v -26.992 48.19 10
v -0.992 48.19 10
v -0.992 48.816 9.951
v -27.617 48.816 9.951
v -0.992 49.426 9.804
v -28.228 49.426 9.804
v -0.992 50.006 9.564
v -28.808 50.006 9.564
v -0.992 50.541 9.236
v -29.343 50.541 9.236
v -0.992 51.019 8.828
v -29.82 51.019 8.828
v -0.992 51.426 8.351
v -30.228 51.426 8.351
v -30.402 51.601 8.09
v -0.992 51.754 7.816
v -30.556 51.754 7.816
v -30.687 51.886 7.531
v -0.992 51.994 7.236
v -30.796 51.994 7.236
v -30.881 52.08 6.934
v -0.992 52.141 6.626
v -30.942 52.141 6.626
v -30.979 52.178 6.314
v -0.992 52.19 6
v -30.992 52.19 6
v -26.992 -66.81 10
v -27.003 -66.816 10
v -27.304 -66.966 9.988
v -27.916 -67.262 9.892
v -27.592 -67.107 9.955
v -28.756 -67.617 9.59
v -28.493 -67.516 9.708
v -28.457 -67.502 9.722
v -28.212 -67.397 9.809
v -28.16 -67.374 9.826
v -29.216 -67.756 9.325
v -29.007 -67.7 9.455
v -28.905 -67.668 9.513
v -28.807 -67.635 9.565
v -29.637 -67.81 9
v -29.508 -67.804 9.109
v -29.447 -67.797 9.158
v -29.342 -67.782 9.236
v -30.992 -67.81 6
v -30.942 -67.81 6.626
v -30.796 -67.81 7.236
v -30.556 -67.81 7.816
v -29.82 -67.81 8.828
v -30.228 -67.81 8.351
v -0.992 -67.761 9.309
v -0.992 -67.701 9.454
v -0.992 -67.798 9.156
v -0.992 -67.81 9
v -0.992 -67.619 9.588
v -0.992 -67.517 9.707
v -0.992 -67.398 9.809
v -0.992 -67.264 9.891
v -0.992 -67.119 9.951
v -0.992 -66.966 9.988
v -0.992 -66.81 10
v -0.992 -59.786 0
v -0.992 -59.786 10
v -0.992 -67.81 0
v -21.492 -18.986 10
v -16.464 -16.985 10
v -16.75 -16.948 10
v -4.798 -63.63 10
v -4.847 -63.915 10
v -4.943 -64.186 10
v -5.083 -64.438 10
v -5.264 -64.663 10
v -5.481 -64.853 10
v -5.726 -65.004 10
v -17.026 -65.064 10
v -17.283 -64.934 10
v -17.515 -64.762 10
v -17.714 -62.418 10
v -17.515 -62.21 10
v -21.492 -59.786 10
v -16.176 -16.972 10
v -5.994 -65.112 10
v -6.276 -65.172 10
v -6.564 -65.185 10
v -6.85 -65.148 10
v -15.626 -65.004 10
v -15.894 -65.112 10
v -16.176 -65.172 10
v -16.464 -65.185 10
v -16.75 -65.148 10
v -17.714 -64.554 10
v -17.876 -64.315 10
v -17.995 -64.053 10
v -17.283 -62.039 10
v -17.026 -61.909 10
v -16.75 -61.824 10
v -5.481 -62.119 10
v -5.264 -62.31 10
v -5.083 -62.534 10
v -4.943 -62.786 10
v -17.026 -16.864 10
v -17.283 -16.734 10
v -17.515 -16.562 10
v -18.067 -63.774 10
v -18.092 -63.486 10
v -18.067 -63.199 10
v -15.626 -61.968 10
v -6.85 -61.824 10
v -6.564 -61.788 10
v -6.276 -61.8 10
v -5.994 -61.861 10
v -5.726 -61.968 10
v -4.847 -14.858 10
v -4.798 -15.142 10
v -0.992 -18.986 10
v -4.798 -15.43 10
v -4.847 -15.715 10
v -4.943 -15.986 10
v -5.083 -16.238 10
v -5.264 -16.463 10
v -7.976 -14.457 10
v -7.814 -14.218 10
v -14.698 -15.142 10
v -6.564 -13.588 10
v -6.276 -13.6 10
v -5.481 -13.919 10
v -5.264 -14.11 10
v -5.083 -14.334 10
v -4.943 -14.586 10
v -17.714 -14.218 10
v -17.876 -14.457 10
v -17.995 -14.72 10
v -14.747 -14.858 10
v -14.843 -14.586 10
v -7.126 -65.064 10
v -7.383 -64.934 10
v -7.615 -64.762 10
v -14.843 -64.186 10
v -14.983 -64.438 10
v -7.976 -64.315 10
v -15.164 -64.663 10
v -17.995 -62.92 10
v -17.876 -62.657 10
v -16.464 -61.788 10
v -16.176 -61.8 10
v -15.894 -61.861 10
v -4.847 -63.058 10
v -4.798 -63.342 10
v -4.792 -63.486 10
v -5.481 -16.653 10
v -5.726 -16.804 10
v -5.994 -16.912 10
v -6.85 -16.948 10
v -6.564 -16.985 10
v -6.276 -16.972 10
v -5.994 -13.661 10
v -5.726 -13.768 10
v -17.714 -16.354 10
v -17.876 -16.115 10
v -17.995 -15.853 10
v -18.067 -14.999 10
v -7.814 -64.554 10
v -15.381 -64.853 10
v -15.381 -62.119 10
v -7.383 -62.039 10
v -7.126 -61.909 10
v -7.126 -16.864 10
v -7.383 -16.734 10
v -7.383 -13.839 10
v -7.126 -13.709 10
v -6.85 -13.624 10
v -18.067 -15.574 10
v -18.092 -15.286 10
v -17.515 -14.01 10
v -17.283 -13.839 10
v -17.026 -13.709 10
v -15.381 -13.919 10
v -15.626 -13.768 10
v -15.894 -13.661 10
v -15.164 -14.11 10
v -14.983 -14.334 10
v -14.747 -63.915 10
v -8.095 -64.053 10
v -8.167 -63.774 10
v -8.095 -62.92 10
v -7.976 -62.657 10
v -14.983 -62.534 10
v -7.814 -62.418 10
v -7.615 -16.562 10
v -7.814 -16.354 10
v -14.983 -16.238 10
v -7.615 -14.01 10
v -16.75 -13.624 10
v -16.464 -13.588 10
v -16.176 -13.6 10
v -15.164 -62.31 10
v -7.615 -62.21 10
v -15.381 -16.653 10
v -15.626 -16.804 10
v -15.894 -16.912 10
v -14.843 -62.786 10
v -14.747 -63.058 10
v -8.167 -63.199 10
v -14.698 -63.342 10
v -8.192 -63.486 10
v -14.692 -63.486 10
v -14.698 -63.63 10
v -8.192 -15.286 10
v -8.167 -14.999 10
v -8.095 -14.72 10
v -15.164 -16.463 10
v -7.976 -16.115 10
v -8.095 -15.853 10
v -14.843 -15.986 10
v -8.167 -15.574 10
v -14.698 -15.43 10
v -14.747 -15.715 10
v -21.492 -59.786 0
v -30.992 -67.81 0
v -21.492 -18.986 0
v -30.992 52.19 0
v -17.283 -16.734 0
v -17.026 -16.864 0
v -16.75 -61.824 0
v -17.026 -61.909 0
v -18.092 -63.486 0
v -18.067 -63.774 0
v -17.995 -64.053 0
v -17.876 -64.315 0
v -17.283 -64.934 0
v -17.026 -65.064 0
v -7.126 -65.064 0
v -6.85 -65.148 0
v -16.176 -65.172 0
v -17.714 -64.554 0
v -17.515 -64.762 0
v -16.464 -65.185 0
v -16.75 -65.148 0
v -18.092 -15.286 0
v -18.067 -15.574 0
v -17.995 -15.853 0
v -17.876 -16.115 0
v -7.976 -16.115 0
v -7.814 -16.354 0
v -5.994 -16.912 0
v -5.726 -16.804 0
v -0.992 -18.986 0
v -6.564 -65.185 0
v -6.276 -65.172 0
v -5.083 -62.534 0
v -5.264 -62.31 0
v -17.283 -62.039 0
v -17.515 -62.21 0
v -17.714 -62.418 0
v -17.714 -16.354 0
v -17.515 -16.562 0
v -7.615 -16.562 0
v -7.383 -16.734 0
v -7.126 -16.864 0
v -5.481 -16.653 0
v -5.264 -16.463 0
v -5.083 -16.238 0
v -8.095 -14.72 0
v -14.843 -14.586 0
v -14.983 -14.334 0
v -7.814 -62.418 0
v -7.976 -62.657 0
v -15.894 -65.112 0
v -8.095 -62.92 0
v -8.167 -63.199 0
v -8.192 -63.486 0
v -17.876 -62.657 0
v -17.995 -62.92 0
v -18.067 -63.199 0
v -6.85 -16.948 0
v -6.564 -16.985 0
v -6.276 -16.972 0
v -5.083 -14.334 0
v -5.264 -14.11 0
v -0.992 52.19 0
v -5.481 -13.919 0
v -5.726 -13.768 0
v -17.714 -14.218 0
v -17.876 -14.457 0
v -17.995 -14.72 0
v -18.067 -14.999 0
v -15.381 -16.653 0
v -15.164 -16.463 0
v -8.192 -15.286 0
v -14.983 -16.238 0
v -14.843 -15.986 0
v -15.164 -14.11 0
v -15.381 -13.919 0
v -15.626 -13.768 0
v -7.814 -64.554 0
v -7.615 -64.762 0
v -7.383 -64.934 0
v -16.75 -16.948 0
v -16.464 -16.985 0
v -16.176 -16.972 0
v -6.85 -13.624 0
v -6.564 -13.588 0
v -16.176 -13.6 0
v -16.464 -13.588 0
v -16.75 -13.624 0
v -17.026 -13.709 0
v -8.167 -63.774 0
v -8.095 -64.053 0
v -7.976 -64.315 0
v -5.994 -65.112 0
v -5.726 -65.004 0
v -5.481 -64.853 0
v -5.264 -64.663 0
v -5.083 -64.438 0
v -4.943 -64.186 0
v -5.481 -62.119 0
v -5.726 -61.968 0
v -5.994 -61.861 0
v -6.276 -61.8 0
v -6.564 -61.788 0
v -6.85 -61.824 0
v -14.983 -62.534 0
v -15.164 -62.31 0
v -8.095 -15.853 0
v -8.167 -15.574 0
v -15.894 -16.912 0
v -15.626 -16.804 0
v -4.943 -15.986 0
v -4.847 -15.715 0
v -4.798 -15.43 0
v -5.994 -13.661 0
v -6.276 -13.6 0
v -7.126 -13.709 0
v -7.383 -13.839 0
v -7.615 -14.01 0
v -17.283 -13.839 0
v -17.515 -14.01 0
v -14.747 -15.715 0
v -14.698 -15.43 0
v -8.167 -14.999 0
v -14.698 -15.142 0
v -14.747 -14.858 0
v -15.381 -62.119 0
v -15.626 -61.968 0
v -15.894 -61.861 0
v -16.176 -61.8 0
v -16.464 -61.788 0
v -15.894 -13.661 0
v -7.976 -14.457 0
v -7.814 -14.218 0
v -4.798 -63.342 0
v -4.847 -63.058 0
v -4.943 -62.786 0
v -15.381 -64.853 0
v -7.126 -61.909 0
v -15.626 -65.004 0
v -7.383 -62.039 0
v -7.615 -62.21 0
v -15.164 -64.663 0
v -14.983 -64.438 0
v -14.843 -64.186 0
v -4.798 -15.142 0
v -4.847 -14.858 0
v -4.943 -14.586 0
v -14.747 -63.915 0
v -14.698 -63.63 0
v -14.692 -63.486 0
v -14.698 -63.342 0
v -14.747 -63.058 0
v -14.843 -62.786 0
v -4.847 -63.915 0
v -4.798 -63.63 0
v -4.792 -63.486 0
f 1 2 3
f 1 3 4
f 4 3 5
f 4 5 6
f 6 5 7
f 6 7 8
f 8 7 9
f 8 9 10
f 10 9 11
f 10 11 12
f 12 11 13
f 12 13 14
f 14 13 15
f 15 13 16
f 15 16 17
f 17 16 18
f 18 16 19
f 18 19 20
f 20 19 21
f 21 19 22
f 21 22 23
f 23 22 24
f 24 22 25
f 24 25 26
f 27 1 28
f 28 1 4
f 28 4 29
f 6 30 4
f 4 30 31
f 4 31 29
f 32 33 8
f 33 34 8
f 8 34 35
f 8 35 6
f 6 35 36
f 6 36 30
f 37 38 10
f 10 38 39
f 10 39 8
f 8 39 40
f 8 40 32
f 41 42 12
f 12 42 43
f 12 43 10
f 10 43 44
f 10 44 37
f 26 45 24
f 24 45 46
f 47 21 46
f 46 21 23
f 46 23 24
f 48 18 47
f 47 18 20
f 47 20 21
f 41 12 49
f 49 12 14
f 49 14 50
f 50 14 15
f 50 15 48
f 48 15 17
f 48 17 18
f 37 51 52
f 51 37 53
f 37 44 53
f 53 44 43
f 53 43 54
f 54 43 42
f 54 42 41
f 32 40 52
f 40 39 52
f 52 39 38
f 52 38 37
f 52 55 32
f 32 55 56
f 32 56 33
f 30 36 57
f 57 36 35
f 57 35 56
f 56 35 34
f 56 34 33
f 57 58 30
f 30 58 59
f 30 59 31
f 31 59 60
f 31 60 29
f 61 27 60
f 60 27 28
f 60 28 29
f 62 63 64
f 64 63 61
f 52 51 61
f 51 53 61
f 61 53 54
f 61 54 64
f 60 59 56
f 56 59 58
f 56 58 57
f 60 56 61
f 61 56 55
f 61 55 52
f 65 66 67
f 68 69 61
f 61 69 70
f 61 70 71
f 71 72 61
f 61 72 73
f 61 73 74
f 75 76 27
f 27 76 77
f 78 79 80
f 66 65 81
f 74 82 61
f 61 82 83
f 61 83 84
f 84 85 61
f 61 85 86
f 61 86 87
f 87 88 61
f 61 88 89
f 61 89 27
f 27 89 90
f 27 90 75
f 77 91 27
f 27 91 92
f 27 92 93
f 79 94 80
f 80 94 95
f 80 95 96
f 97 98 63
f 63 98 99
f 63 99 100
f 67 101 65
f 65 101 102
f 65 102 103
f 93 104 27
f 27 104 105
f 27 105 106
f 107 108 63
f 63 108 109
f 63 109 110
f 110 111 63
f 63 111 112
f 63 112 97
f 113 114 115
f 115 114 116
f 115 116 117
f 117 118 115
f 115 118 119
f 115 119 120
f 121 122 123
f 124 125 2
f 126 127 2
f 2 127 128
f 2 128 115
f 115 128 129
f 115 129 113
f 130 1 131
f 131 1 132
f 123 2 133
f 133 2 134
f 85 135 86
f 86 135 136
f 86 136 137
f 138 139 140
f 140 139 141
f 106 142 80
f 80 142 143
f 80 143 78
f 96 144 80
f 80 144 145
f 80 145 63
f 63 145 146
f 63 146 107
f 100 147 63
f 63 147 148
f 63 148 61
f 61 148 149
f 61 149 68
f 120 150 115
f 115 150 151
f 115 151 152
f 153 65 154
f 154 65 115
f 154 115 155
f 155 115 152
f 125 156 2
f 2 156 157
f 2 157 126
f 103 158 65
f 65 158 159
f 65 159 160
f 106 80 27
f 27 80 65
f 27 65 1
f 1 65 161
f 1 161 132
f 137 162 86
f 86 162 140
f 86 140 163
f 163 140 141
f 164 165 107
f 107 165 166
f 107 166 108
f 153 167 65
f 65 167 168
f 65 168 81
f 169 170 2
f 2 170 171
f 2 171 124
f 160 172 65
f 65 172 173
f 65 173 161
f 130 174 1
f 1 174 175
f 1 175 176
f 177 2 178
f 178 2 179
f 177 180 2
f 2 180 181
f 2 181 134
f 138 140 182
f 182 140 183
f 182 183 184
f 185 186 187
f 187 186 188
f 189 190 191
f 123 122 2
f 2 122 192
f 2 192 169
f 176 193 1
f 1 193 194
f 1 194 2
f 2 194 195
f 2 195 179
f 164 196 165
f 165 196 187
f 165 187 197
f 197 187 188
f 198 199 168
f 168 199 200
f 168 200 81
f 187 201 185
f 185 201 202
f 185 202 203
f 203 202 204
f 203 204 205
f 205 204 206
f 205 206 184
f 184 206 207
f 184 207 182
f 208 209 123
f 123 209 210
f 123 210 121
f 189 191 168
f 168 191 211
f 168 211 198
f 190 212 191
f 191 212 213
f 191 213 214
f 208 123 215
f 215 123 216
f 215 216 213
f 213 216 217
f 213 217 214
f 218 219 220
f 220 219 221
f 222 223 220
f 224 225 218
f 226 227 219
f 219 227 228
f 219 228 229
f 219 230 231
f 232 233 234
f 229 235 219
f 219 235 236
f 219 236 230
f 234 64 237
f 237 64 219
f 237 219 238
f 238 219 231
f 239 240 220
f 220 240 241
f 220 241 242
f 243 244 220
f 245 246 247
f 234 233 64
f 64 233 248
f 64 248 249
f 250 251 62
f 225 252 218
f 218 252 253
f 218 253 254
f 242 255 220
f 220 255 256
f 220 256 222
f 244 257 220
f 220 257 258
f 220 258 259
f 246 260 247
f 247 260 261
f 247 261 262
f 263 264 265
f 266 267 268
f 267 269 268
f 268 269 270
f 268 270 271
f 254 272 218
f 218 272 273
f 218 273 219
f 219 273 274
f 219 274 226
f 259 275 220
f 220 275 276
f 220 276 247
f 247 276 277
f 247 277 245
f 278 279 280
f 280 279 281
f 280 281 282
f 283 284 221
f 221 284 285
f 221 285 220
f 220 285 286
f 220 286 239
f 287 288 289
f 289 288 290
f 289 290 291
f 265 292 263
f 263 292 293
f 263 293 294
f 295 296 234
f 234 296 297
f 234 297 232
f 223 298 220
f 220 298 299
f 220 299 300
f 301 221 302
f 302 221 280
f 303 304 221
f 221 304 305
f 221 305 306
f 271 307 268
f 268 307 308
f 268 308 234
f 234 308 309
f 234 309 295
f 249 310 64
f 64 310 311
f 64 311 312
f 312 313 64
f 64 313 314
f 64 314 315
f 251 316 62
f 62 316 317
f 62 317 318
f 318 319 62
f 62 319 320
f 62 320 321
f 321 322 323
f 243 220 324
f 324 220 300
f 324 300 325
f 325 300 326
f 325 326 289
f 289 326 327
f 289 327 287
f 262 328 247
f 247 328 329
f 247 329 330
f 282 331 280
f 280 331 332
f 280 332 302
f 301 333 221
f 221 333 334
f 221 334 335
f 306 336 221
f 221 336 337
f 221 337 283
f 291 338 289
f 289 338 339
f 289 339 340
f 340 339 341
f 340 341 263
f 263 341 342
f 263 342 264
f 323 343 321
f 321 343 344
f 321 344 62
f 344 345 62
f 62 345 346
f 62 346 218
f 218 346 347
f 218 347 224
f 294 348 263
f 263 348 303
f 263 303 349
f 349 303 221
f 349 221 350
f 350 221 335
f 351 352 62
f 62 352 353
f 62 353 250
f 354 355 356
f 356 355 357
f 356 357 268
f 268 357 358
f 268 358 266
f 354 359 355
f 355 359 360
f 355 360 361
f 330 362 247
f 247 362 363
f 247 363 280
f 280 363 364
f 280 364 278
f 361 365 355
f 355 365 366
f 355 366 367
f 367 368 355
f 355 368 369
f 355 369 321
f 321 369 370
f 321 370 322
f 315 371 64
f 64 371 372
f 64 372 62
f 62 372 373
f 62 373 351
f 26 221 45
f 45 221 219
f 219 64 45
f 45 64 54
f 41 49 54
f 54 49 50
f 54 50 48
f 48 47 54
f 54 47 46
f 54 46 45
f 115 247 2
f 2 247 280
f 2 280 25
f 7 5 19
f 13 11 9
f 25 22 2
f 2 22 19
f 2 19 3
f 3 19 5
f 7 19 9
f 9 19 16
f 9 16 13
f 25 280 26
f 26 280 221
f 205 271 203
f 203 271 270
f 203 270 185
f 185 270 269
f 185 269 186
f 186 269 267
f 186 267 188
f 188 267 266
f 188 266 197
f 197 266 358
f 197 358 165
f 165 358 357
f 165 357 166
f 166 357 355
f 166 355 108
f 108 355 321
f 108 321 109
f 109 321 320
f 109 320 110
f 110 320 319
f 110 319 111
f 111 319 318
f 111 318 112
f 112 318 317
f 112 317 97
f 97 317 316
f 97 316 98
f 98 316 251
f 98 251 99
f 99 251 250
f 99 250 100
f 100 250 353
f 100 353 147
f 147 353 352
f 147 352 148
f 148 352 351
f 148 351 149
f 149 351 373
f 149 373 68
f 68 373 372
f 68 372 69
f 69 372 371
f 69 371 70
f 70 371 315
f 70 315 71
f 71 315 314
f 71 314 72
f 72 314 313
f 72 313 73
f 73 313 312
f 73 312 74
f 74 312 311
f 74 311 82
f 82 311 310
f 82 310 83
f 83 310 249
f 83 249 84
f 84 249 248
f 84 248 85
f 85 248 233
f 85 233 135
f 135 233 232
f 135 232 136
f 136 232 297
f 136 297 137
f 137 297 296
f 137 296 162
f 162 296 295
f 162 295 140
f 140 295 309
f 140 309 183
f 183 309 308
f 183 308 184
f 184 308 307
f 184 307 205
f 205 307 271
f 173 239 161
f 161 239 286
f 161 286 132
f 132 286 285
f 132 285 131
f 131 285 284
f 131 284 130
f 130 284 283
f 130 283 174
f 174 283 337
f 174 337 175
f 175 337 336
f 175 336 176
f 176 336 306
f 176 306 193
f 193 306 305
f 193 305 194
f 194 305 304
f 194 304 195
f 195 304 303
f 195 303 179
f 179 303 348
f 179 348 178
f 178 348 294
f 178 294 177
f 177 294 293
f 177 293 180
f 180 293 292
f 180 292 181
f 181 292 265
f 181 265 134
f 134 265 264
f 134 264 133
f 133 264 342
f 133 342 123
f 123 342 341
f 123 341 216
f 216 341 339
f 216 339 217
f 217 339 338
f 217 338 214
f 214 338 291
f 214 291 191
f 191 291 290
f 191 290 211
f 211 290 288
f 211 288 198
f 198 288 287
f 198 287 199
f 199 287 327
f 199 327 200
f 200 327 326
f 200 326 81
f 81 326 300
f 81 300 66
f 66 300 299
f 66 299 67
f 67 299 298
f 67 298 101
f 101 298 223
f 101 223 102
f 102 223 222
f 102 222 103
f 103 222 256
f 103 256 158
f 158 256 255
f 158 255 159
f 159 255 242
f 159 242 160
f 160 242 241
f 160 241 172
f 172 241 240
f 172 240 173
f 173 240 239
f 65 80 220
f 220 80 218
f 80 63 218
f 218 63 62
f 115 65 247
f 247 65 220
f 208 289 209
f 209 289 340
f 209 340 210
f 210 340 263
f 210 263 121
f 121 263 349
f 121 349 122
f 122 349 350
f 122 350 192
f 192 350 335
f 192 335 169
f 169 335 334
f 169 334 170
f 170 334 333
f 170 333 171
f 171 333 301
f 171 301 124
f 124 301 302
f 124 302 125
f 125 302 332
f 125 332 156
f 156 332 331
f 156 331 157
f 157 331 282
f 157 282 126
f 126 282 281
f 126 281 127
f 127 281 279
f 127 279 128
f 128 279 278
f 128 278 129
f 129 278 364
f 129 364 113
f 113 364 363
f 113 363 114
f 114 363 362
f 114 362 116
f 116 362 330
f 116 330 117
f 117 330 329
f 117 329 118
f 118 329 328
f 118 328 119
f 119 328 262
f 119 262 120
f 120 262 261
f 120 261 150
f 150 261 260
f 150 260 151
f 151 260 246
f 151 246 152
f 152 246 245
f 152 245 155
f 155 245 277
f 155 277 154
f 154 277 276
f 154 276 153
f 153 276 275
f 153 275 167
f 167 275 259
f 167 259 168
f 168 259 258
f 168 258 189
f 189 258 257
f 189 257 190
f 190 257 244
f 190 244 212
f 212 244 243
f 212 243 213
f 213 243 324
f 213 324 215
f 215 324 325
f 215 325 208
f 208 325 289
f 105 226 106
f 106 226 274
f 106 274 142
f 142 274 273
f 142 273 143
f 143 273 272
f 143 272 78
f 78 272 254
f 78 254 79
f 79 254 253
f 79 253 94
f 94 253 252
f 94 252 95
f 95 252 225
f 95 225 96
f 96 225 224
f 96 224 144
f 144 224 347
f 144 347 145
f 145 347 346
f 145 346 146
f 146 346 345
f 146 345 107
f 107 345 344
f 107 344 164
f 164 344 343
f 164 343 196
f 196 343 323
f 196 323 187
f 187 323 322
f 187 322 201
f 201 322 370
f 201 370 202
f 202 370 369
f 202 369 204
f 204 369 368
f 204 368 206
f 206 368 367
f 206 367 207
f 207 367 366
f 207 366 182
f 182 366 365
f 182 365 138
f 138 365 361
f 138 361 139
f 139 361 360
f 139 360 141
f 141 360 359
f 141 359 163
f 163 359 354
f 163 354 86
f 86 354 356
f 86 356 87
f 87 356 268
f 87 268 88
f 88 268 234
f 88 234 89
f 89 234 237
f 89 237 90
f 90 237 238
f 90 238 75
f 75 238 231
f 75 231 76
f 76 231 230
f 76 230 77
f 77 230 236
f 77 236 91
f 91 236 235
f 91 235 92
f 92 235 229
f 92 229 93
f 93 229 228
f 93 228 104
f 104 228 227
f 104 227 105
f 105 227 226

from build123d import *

# Parameters (mm, degrees)
SKETCH2_W           = 30
SKETCH2_H           = 120
BOSS_EXTRUDE1_DEPTH = 10
SKETCH3_R           = 1.7
SKETCH3_W           = 20.5
SKETCH3_H           = 40.8
CUT_EXTRUDE3_DEPTH  = 76.224148804
FILLET1_R           = 1
FILLET2_R           = 4


with BuildPart() as part:
    # Sketch2 → Boss-Extrude1 (new body)
    with BuildSketch(Plane.XY):
        with Locations((-15.991735537, -7.809917355)):
            Rectangle(SKETCH2_W, SKETCH2_H)
    extrude(amount=BOSS_EXTRUDE1_DEPTH)

    # Sketch3 → Cut-Extrude3 (cut, through all)
    with BuildSketch(Plane.XY):
        with Locations((-16.391735537, -63.486209282)):
            Circle(SKETCH3_R)
        with Locations((-6.491735537, -63.486209282)):
            Circle(SKETCH3_R)
        with Locations(Location((-6.491735537, -15.286209282, 0), (0, 0, 180))):
            Circle(SKETCH3_R)
        with Locations(Location((-16.391735537, -15.286209282, 0), (0, 0, 180))):
            Circle(SKETCH3_R)
        with Locations((-11.241735537, -39.386209282)):
            Rectangle(SKETCH3_W, SKETCH3_H)
    extrude(amount=CUT_EXTRUDE3_DEPTH, mode=Mode.SUBTRACT)

    # Fillet1
    fillet1_edges = [part.edges().sort_by_distance(p)[0] for p in [
        (-15.991735537, -67.809917355, 10),
    ]]
    fillet(fillet1_edges, radius=FILLET1_R)

    # Fillet2
    # the kernel refuses this fillet: 4 mm, written as the material it takes off along each edge
    with BuildSketch(Plane(origin=(-40.991735537, 52.190082645, 10), x_dir=(0, -1, 0), z_dir=(1, 0, 0))) as fillet2_piece_1:
        with BuildLine():
            CenterArc((FILLET2_R, FILLET2_R), FILLET2_R, 180, 90)
            Line((0, FILLET2_R), (0, 0))
            Line((0, 0), (FILLET2_R, 0))
        make_face()
    extrude(amount=50, mode=Mode.SUBTRACT)
    with BuildSketch(Plane(origin=(-30.991735537, -76.809917355, 10), x_dir=(0, 0, -1), z_dir=(0, 1, 0))) as fillet2_piece_2:
        with BuildLine():
            CenterArc((FILLET2_R, -FILLET2_R), FILLET2_R, 90, 90)
            Line((0, -FILLET2_R), (0, 0))
            Line((0, 0), (FILLET2_R, 0))
        make_face()
    extrude(amount=139, mode=Mode.SUBTRACT)


solid = part.part
